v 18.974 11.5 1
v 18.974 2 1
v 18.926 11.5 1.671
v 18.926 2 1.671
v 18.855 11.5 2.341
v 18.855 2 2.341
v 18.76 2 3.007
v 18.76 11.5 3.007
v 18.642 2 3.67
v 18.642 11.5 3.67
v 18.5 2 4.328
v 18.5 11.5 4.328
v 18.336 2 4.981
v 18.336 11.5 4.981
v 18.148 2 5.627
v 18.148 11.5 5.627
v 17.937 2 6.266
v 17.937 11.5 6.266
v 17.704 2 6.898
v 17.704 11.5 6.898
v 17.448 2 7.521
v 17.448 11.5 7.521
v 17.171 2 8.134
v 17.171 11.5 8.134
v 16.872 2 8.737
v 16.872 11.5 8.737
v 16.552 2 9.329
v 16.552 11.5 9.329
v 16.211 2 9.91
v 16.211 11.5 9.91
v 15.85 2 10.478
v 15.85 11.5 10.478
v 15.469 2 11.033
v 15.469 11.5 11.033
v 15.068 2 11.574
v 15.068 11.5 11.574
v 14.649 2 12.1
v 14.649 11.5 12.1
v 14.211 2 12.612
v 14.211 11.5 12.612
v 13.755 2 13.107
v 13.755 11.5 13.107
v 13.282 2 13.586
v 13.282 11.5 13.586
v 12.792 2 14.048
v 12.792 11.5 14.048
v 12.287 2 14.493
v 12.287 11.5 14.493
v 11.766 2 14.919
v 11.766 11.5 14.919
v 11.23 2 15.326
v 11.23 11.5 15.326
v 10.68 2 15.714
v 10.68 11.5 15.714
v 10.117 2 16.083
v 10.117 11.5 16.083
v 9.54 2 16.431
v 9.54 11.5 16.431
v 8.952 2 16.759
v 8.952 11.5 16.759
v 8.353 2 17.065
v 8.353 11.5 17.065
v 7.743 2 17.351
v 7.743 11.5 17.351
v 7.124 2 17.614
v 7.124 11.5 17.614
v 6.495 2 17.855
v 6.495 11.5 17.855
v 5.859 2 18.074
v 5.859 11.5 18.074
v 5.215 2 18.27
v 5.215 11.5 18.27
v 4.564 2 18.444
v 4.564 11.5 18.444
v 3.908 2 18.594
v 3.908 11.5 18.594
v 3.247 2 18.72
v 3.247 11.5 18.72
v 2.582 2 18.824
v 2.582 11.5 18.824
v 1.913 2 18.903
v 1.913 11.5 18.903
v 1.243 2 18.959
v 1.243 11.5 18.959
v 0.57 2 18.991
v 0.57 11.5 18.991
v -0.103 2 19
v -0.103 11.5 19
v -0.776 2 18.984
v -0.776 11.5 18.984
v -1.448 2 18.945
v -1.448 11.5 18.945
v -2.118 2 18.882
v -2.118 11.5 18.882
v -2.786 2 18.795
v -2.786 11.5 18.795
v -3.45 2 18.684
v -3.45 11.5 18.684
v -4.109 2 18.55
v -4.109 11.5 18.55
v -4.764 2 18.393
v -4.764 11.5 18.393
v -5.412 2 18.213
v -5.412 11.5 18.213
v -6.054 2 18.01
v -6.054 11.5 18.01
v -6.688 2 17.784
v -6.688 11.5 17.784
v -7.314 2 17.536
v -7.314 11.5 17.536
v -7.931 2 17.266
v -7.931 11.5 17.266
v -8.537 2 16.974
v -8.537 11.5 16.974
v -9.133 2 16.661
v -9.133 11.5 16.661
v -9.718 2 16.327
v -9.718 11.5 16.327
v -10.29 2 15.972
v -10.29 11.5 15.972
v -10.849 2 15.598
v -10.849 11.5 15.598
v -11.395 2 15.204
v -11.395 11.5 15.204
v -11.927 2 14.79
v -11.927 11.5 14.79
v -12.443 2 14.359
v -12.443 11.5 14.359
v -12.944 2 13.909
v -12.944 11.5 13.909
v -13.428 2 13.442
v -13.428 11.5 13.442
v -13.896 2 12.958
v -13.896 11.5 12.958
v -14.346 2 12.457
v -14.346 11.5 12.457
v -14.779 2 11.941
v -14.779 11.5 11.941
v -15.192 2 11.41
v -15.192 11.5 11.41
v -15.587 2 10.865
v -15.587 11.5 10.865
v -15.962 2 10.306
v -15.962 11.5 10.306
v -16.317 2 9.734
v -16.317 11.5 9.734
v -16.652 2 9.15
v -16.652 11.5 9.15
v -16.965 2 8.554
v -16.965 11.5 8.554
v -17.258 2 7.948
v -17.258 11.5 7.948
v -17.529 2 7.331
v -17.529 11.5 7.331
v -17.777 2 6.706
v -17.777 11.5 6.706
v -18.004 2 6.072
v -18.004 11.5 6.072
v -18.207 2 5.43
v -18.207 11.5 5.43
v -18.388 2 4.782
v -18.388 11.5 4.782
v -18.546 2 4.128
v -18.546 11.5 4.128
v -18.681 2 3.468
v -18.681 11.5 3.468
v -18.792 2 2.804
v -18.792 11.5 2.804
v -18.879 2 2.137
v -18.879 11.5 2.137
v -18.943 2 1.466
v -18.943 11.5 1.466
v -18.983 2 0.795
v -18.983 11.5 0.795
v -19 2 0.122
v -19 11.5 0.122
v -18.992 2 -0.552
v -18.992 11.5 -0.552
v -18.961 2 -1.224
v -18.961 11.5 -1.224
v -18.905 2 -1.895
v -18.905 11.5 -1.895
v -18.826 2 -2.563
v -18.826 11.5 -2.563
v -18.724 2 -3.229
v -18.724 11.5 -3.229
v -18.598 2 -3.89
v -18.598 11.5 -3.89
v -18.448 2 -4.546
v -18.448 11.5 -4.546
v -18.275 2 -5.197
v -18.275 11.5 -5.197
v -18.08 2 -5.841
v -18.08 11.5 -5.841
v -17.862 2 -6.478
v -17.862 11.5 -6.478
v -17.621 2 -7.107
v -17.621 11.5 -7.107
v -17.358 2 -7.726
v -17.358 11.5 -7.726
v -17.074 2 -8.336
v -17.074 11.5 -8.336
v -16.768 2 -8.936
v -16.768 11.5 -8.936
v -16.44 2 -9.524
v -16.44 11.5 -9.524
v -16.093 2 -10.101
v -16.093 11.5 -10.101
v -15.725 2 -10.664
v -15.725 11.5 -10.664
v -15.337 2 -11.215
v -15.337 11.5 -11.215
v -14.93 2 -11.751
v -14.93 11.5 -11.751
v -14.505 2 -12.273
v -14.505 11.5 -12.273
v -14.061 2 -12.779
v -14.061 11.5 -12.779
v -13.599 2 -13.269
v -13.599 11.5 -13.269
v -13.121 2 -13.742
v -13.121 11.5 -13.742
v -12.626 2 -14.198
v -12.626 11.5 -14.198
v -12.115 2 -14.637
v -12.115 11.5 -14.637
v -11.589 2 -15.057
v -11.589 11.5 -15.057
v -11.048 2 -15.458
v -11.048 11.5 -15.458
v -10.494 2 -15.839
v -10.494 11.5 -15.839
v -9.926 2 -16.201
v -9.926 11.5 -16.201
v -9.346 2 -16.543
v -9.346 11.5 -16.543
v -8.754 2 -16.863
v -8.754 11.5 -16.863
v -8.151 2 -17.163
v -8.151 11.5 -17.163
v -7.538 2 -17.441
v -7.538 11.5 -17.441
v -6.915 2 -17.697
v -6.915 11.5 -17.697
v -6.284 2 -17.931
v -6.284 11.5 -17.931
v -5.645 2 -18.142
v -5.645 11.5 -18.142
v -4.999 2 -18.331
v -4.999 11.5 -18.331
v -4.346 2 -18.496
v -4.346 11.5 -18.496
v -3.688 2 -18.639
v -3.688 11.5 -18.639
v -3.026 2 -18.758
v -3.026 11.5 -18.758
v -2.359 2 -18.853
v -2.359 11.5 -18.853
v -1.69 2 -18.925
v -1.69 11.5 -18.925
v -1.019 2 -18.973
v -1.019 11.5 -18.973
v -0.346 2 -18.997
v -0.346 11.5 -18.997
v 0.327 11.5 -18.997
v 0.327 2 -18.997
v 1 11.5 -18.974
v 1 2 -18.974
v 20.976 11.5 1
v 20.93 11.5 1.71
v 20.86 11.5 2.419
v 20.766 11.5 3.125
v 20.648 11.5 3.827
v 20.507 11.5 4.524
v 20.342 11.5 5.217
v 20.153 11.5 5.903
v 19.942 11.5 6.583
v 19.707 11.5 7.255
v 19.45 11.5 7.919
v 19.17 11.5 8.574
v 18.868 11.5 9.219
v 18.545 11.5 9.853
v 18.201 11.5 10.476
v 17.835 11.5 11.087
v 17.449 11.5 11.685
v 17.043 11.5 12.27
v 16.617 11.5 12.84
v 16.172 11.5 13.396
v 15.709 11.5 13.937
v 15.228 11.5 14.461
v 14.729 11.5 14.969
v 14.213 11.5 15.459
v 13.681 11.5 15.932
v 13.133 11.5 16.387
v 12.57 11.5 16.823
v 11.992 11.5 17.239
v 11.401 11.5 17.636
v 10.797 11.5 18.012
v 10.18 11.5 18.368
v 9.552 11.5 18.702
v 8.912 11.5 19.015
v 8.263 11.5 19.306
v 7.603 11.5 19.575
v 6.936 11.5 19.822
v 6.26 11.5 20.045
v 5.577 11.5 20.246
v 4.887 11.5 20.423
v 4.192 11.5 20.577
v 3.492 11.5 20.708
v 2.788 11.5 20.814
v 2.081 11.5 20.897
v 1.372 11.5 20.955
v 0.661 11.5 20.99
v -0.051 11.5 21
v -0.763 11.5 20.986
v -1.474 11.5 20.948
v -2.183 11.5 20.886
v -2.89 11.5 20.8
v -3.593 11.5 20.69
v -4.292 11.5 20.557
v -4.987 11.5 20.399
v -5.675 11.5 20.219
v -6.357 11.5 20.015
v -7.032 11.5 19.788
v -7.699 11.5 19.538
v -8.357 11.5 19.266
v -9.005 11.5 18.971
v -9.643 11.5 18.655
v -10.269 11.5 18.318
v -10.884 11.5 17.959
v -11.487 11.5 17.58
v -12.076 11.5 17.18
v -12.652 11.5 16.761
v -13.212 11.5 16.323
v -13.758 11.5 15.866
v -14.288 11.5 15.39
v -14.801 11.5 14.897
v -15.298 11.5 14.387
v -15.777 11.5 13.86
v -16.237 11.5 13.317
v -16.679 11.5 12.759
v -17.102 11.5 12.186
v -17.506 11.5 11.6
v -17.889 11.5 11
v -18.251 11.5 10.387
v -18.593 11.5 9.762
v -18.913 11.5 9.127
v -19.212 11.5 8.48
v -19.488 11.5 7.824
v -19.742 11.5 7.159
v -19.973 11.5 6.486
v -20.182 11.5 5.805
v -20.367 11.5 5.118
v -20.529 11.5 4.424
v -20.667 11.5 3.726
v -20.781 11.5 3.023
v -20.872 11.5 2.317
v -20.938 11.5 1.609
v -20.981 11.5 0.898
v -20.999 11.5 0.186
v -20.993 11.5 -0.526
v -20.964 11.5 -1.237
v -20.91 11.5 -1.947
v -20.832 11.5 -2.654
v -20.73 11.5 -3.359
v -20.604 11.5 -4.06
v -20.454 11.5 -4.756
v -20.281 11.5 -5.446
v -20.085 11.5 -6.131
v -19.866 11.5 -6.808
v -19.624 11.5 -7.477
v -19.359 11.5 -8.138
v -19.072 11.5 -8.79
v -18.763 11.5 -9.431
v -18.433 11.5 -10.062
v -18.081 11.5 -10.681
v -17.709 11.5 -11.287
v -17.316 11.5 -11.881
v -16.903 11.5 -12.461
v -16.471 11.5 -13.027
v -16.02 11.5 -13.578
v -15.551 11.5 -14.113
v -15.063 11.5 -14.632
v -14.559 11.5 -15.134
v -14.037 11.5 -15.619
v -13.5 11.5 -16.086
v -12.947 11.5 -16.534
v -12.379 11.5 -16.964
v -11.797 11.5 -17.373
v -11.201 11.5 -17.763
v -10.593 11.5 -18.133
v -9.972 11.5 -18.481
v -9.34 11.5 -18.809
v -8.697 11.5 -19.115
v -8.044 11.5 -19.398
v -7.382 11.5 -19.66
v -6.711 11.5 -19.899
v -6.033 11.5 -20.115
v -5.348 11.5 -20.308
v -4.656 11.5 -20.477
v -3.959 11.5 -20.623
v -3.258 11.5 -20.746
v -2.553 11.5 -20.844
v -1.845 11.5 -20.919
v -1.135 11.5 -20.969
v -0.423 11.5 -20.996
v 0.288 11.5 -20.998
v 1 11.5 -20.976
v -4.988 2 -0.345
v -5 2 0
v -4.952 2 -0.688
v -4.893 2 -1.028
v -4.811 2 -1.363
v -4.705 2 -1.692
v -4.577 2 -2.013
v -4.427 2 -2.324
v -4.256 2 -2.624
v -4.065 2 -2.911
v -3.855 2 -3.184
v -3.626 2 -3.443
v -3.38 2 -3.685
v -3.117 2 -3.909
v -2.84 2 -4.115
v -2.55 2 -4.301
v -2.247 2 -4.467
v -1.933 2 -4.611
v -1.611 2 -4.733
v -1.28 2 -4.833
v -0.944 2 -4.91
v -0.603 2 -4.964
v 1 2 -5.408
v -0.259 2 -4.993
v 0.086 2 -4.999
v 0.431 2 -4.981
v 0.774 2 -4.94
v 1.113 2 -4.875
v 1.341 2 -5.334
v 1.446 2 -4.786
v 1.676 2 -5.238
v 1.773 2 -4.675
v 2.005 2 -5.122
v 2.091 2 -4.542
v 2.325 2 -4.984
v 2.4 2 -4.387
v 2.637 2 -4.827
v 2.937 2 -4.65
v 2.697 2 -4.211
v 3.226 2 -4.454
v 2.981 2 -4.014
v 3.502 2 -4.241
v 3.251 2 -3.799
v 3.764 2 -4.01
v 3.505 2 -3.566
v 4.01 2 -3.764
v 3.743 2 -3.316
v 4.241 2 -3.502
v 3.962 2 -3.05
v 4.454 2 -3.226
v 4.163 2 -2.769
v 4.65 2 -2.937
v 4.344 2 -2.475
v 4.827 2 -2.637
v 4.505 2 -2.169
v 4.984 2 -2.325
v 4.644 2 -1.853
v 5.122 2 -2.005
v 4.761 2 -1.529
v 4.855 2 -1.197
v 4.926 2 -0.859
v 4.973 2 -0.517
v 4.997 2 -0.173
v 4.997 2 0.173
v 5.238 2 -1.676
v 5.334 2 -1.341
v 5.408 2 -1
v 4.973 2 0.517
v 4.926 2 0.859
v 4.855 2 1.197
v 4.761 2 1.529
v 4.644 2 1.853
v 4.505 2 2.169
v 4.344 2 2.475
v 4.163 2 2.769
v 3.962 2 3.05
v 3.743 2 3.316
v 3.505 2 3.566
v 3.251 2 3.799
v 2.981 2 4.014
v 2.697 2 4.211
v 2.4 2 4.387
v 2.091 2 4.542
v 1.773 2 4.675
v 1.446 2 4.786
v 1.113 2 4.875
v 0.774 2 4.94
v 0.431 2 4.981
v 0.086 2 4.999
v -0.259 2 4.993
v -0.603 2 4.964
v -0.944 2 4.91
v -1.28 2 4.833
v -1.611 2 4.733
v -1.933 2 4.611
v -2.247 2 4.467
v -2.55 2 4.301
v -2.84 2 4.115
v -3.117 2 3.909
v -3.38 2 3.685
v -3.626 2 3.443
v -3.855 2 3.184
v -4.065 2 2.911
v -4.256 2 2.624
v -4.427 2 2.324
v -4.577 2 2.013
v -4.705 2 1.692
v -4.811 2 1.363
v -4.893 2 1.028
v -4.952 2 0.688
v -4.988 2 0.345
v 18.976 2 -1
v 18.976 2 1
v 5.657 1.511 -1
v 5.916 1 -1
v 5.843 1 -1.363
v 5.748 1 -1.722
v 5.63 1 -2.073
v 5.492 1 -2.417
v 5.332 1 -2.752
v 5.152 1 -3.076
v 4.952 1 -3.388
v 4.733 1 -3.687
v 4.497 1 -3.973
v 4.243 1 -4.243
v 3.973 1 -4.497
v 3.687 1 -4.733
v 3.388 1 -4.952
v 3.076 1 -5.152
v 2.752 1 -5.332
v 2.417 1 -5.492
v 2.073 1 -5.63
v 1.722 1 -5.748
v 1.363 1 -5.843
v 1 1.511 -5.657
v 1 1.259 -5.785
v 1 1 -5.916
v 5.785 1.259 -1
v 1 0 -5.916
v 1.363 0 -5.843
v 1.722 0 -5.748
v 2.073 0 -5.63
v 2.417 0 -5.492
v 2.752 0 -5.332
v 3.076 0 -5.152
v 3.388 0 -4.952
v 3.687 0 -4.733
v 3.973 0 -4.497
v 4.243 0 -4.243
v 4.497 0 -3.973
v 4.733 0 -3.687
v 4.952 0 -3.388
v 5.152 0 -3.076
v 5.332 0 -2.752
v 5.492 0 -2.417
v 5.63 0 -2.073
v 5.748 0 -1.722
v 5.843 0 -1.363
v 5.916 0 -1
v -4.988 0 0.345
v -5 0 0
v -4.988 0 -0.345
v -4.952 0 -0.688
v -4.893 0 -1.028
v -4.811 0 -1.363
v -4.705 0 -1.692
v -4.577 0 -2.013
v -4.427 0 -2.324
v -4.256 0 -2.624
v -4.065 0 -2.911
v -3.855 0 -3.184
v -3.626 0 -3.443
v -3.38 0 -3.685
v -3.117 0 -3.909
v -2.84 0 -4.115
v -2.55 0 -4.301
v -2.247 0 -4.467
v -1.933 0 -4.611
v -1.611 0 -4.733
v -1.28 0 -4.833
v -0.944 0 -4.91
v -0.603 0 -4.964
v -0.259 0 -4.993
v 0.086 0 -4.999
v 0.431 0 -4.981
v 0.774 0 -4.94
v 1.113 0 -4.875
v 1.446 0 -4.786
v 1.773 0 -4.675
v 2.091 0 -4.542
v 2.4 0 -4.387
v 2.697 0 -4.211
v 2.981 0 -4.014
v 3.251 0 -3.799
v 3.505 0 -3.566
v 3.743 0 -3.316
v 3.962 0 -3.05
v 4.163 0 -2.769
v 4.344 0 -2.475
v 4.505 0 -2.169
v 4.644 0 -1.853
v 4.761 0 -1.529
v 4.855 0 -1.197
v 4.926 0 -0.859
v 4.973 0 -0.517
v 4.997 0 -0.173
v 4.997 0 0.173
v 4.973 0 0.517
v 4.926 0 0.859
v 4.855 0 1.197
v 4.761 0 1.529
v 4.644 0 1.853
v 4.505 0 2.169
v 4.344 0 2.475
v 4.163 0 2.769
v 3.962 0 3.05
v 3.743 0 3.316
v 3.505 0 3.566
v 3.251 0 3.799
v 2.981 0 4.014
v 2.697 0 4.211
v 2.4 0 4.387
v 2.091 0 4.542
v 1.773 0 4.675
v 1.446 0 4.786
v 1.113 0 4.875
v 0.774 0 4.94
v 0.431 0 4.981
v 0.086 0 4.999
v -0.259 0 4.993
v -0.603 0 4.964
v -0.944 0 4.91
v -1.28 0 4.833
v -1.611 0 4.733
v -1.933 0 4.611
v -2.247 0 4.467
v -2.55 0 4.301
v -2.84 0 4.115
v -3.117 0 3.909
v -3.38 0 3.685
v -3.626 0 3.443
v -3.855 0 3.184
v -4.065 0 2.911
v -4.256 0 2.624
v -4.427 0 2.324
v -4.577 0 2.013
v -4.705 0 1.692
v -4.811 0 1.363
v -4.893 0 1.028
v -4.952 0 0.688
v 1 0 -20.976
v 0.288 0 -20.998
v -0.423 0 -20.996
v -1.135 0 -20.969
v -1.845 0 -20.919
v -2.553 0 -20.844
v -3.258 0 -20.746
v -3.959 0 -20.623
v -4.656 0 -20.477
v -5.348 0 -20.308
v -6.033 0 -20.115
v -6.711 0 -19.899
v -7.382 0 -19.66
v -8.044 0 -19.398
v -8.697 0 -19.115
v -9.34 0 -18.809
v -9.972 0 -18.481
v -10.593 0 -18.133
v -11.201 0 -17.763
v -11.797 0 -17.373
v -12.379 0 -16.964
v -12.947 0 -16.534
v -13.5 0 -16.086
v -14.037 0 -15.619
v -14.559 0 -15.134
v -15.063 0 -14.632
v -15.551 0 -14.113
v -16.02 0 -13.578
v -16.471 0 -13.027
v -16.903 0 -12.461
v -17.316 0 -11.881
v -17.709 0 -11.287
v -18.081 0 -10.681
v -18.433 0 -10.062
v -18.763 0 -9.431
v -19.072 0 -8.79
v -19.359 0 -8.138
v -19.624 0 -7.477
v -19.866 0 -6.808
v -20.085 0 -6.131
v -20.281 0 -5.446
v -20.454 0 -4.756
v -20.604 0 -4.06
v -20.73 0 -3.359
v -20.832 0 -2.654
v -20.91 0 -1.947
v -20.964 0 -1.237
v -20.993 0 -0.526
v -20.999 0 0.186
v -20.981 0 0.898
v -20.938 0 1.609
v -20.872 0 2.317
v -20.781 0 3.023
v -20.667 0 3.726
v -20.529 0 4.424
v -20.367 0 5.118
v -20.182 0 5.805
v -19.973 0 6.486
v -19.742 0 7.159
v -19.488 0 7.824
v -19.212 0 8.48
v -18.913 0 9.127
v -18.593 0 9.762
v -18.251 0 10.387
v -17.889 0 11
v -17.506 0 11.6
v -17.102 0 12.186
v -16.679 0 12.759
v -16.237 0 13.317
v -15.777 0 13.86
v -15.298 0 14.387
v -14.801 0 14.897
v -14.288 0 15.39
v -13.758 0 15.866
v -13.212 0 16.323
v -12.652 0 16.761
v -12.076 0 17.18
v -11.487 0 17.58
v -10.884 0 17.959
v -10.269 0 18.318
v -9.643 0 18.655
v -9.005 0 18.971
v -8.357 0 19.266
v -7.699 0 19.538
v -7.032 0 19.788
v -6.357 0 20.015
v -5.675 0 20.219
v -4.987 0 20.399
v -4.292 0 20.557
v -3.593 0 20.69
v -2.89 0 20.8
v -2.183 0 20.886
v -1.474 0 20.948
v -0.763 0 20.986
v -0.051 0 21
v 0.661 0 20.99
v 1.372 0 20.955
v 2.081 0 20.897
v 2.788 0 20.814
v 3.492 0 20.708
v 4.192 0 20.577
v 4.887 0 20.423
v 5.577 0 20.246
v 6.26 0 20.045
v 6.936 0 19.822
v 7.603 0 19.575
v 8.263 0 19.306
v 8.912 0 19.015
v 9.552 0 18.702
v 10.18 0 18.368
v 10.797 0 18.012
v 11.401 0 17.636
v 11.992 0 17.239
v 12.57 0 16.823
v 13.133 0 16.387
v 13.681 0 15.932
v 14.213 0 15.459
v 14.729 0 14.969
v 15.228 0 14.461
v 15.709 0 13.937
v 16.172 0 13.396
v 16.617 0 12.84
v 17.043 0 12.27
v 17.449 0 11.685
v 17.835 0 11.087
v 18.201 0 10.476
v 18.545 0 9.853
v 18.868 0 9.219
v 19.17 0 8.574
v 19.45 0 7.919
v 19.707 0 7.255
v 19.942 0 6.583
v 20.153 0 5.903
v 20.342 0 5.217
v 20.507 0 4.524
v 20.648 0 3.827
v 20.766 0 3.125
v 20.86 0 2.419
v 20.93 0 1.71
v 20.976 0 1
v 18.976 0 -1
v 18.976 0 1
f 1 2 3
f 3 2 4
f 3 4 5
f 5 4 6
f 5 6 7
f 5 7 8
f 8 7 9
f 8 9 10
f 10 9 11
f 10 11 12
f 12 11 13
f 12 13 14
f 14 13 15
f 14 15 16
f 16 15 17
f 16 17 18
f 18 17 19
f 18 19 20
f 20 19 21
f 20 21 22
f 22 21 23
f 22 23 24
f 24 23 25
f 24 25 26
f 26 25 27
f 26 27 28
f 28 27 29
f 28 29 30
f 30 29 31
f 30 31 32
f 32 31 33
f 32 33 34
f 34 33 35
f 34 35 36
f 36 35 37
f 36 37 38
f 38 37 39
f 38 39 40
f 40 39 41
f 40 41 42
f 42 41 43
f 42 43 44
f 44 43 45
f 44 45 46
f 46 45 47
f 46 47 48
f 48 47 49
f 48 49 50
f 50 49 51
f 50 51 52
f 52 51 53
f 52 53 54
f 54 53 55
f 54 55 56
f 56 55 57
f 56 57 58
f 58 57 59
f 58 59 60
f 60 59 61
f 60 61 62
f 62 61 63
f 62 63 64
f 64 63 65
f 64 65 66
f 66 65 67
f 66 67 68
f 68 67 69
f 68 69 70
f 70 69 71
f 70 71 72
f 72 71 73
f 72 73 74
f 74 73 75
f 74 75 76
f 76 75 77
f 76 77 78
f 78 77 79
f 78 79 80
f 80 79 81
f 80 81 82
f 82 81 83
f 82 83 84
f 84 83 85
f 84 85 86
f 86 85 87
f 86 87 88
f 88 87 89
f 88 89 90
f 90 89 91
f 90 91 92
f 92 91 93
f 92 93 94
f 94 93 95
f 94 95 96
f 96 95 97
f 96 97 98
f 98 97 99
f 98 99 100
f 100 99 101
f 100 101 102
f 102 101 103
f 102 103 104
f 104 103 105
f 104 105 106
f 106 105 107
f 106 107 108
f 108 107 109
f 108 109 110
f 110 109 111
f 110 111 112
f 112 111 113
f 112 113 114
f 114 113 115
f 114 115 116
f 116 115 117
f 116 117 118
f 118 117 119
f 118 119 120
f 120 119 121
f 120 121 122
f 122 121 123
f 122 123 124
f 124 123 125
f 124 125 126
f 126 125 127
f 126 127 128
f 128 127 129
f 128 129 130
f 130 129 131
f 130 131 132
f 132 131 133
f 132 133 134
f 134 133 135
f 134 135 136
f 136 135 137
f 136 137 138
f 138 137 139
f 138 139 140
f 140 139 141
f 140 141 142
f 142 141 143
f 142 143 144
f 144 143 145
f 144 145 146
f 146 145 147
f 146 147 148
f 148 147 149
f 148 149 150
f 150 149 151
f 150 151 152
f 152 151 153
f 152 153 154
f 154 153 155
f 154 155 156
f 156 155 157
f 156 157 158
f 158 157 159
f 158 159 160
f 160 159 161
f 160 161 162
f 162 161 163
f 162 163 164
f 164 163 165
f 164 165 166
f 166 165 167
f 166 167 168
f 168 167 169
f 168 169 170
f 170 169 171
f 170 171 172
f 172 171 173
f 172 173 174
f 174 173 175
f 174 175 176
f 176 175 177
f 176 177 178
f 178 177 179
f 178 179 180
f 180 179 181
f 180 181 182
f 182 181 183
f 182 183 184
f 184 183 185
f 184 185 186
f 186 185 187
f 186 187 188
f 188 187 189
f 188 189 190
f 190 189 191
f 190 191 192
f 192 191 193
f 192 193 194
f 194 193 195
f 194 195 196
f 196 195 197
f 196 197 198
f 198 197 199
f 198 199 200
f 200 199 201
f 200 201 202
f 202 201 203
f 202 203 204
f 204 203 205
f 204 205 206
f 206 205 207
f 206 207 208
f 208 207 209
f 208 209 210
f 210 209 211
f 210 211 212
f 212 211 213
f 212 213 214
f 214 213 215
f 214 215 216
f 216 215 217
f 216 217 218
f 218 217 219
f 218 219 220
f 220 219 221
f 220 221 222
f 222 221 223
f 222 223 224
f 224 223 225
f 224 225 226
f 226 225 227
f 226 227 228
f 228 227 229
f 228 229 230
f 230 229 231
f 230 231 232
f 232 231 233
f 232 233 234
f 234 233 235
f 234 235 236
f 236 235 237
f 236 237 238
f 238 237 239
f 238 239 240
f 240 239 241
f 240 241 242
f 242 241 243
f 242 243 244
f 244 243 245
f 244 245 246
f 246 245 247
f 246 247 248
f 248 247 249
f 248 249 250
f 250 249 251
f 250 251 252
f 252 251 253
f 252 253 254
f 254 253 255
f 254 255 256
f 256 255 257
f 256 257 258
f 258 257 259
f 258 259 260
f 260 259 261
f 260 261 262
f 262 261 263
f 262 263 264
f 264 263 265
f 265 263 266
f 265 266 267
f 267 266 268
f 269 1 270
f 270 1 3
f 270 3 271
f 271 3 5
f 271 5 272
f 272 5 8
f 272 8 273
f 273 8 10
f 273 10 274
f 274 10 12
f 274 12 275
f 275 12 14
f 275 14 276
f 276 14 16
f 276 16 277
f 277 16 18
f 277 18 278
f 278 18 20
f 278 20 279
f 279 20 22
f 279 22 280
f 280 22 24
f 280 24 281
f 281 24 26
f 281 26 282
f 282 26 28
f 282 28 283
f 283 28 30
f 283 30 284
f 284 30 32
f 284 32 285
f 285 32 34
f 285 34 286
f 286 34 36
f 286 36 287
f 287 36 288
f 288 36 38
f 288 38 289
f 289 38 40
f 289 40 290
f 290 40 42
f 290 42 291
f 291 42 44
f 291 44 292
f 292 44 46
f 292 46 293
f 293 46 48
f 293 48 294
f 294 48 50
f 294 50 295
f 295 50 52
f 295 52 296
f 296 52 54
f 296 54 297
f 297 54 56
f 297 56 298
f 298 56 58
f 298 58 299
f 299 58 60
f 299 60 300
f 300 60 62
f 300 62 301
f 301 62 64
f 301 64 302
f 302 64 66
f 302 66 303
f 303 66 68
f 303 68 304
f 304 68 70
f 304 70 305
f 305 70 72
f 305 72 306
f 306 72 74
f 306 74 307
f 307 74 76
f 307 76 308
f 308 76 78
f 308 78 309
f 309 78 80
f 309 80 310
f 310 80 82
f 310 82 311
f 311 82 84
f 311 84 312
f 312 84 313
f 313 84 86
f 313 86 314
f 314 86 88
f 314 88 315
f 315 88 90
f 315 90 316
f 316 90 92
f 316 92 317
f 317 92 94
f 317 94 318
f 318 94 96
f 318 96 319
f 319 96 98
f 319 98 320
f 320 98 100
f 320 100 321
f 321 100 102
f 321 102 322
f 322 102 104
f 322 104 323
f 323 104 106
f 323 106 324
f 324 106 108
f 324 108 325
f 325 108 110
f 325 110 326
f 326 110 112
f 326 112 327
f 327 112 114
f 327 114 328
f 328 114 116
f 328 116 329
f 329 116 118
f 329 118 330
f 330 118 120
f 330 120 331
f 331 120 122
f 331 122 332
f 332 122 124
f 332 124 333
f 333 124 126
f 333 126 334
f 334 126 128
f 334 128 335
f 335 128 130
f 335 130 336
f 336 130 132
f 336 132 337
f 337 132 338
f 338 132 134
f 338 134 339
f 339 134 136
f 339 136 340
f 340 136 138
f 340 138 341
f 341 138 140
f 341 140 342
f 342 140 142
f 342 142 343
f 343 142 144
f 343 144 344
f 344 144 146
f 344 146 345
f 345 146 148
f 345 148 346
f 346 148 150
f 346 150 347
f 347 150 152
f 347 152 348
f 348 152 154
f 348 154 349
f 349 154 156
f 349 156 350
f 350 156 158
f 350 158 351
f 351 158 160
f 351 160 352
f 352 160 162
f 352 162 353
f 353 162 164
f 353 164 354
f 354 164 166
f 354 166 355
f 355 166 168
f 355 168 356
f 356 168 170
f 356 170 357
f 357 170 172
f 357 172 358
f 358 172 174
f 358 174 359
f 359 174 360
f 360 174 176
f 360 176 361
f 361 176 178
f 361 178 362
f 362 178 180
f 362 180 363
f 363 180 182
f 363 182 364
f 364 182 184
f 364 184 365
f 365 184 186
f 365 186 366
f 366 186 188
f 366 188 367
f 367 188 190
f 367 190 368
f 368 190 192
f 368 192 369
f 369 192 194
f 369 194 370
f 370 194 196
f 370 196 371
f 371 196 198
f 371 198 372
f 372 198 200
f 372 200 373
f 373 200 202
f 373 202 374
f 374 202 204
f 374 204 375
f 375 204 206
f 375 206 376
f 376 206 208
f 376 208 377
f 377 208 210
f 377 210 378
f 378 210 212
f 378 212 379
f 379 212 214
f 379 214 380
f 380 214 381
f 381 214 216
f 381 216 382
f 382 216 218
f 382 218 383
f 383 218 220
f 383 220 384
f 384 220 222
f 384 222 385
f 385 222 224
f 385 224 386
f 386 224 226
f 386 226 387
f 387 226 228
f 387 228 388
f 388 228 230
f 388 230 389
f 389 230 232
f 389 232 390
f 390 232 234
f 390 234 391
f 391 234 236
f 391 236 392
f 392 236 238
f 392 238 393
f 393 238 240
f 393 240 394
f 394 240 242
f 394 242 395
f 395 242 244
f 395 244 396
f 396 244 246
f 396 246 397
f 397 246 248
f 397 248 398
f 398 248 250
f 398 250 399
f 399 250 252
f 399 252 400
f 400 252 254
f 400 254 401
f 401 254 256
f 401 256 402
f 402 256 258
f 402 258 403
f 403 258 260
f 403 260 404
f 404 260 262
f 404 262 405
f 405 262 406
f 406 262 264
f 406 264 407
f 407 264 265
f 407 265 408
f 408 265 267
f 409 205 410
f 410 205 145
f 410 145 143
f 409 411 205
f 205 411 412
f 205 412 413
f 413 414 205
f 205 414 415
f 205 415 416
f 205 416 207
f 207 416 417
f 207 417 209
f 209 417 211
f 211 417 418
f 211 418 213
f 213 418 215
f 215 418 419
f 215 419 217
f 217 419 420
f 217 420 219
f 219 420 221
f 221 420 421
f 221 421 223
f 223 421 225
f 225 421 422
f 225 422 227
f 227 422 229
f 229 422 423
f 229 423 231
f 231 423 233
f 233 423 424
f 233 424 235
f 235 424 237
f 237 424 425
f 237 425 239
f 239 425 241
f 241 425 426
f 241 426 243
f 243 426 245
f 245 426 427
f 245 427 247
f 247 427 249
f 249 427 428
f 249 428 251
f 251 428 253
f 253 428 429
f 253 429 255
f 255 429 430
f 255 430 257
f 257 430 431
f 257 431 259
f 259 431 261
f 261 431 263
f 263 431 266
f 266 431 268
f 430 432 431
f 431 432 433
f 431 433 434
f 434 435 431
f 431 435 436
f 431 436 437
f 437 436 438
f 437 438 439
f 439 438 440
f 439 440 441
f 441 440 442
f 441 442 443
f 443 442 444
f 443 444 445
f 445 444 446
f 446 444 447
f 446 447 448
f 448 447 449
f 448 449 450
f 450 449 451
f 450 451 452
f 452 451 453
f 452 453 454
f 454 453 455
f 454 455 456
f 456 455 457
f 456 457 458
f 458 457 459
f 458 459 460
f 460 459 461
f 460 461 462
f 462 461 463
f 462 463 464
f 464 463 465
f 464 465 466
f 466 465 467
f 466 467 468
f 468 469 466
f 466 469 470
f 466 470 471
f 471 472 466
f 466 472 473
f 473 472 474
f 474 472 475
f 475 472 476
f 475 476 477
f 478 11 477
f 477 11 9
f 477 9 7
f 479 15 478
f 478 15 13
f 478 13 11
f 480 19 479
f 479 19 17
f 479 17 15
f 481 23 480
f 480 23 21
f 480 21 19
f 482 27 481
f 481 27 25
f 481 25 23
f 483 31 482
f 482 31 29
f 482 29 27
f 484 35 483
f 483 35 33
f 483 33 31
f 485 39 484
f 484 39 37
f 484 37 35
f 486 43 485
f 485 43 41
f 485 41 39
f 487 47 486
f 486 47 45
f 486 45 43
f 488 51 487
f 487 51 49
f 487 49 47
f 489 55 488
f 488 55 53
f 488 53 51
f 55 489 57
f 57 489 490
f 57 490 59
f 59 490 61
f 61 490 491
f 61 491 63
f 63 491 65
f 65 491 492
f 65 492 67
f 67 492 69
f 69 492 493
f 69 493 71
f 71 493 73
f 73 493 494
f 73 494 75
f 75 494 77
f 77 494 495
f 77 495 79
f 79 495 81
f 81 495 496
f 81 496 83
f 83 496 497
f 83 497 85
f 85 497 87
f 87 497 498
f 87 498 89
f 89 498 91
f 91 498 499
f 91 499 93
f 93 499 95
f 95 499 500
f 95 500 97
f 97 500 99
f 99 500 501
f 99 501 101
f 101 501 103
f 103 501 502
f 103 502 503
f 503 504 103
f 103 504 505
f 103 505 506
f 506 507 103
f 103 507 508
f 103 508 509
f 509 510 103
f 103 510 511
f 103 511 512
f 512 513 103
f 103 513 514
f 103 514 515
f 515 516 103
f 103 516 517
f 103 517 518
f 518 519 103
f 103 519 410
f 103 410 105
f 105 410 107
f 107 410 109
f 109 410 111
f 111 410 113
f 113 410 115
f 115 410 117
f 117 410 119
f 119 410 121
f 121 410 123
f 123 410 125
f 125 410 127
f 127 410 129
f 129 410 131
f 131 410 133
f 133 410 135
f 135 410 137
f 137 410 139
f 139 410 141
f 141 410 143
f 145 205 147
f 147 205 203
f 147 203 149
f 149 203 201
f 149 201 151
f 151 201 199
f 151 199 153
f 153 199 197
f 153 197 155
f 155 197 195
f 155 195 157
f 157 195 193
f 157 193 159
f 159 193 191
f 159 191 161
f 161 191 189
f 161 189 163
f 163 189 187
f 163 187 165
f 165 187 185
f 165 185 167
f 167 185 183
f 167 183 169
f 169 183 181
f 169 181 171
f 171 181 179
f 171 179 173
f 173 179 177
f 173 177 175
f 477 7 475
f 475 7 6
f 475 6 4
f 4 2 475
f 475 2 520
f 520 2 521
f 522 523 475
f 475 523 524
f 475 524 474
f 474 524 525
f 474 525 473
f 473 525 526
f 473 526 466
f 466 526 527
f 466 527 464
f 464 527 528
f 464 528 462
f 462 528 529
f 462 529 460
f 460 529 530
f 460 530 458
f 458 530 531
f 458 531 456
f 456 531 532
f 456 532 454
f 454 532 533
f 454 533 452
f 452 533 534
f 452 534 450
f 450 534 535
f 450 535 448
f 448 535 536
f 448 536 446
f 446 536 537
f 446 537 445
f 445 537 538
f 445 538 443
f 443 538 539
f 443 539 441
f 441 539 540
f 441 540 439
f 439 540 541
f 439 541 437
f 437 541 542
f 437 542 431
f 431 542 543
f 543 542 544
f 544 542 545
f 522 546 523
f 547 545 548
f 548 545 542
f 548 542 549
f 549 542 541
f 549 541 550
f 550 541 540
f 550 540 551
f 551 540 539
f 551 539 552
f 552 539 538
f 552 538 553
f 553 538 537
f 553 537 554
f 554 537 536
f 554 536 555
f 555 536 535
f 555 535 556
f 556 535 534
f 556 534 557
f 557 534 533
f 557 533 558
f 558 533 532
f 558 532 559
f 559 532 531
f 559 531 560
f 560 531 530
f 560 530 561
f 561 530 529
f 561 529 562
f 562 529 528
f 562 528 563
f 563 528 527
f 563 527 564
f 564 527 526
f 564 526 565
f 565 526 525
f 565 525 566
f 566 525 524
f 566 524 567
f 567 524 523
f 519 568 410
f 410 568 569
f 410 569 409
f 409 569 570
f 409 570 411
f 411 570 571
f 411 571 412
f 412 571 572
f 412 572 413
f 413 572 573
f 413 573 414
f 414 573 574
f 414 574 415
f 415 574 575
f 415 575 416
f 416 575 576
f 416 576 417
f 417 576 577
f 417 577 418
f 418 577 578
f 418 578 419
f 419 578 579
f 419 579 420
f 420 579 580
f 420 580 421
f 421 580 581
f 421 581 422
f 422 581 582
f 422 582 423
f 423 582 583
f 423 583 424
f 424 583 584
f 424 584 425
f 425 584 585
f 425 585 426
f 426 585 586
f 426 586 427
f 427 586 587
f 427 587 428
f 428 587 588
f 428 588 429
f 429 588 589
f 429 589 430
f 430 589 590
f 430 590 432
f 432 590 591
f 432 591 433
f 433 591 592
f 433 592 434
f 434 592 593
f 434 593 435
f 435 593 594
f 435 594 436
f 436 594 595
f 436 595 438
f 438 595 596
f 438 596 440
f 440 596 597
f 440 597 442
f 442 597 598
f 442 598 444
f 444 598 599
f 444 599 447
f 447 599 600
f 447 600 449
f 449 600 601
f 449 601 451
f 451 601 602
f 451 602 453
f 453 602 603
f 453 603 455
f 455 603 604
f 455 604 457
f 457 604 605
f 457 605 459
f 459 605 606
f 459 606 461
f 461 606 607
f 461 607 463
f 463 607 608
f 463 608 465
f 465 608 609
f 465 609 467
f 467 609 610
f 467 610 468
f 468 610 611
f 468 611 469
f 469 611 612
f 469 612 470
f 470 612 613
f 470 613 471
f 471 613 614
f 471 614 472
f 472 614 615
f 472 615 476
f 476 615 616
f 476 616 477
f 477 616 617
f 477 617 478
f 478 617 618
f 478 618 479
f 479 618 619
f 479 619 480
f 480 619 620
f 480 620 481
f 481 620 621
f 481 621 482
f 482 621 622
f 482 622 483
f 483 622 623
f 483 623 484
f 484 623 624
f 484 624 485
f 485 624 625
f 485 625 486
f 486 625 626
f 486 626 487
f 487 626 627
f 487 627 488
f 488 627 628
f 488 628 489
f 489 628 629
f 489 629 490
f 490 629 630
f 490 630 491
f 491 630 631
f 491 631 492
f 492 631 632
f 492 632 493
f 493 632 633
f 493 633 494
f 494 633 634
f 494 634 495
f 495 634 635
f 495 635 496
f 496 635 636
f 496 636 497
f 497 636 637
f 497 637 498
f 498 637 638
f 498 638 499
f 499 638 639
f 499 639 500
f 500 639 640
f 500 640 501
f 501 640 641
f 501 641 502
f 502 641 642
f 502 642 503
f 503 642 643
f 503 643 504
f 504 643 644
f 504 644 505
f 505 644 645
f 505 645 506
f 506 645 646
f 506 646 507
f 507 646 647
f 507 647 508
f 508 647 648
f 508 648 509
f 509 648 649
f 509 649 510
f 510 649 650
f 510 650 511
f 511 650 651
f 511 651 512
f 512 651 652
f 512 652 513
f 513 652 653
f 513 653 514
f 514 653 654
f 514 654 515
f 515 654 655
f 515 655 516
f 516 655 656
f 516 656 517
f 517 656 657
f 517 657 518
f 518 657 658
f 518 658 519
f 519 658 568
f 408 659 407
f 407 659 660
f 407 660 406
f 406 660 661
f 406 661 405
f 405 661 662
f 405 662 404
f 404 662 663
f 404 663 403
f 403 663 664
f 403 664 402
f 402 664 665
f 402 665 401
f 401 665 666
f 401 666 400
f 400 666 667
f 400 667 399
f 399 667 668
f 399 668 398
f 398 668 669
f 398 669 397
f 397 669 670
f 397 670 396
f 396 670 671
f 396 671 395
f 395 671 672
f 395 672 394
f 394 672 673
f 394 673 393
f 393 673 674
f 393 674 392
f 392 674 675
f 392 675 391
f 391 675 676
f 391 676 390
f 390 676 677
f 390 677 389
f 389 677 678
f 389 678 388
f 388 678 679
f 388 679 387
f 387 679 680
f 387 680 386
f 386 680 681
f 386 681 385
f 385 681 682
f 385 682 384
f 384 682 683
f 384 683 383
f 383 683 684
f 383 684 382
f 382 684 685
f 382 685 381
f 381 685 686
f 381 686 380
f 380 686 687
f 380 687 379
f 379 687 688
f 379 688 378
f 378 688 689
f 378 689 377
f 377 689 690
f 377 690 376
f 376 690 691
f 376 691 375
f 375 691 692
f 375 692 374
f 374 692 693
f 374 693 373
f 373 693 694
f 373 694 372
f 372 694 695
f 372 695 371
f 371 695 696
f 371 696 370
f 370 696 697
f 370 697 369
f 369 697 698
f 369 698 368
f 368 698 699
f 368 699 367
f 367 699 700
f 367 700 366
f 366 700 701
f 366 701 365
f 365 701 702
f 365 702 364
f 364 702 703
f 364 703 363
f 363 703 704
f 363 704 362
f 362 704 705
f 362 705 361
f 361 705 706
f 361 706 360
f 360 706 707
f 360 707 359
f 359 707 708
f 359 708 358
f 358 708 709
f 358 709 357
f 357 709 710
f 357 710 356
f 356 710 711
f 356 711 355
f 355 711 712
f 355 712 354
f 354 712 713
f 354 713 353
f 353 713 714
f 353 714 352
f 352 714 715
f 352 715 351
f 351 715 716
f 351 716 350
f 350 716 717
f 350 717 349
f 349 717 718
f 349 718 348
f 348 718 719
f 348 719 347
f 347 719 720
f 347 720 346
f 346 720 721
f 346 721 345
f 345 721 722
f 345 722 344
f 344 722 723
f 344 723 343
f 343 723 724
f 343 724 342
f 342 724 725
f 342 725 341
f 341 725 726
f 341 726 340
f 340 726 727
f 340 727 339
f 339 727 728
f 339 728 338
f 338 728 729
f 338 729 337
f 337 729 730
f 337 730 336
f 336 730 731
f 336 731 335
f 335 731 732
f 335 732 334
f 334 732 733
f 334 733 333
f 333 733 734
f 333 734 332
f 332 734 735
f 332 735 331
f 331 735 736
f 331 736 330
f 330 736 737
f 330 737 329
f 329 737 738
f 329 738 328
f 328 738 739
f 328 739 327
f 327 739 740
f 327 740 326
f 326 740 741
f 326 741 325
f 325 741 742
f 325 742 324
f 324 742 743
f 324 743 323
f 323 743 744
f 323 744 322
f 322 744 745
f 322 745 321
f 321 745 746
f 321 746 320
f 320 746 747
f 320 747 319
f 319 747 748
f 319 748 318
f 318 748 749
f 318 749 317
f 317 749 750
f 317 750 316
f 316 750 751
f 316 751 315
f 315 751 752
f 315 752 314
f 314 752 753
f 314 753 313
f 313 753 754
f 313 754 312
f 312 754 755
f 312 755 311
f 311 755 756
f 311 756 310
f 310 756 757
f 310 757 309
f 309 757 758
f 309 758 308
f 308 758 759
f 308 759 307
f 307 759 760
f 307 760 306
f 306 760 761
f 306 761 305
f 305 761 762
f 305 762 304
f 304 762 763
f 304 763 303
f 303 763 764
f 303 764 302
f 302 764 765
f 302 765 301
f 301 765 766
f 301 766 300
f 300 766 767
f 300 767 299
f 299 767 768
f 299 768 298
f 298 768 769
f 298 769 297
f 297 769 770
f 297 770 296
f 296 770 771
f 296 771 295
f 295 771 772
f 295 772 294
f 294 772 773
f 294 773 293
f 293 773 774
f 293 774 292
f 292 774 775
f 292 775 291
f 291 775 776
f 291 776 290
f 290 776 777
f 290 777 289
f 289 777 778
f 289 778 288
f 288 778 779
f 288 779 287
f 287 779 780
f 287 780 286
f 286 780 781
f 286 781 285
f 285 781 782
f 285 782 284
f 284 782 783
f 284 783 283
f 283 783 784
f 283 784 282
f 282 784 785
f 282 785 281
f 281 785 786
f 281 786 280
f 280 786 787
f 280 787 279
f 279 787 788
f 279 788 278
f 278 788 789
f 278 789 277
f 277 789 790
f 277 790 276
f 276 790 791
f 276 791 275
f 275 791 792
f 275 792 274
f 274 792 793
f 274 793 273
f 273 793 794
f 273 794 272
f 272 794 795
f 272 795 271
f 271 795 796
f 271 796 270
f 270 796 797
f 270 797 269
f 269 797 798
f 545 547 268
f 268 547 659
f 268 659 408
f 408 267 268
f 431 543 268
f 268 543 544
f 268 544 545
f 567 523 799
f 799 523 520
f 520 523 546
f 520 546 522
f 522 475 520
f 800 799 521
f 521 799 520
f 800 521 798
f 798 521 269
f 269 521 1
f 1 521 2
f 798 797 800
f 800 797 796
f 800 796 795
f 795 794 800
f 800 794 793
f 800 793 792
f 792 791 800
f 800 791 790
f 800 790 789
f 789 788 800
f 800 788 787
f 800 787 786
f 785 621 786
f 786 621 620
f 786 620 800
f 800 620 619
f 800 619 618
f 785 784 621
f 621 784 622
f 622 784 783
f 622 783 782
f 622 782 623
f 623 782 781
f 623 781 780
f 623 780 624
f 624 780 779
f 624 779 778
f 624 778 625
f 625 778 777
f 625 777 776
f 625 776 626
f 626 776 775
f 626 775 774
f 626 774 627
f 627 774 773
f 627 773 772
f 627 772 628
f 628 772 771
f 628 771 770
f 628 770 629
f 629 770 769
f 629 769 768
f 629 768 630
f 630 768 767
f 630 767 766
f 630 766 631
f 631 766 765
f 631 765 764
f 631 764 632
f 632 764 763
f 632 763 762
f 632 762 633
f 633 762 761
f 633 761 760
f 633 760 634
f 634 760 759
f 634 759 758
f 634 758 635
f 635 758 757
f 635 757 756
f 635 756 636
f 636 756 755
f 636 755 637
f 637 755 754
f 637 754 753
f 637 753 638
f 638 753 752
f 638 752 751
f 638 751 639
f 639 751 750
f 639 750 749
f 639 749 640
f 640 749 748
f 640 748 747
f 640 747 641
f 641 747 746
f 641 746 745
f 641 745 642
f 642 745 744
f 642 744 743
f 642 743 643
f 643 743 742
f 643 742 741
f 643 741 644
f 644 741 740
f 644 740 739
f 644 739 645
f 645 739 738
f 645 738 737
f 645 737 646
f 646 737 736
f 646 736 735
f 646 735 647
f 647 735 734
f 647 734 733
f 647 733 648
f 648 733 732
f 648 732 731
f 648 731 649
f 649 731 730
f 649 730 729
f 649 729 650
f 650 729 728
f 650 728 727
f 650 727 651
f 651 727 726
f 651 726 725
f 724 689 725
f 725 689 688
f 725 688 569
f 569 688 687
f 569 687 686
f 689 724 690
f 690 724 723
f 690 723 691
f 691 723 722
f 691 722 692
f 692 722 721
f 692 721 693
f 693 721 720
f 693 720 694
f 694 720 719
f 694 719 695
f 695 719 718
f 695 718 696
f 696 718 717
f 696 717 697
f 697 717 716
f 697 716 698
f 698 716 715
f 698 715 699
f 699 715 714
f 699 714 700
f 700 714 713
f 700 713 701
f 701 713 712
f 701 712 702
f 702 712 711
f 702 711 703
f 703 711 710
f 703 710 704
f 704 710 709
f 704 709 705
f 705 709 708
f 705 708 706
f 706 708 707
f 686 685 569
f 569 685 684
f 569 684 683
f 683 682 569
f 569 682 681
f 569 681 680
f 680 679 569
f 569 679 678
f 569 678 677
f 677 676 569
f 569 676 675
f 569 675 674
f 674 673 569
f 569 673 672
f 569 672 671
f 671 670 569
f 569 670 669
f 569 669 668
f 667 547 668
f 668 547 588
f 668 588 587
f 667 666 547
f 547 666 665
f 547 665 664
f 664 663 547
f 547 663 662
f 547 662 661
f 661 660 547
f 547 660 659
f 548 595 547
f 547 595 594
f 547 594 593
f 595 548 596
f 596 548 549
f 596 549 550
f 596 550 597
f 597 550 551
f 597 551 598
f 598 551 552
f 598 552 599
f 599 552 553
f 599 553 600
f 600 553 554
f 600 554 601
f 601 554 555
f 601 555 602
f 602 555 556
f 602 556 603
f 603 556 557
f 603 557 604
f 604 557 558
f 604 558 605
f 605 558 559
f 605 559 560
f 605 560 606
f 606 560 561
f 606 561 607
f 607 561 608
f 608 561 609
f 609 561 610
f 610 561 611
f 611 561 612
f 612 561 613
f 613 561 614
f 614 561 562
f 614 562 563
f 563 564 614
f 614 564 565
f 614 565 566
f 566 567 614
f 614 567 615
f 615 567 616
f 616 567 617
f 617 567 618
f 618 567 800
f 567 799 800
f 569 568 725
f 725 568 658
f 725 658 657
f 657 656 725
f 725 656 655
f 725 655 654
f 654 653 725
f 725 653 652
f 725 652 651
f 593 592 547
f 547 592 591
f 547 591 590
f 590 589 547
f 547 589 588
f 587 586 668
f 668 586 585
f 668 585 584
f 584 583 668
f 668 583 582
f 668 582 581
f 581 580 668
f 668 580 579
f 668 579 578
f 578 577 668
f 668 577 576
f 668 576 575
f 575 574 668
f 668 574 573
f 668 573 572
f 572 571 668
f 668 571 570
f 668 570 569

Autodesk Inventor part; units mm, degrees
ref_plane "YZ Plane" through (0, 0, 0) normal (1, 0, 0) x (0, 1, 0)
ref_plane "XZ Plane" through (0, 0, 0) normal (0, 1, 0) x (-1, 0, 0)
ref_plane "XY Plane" through (0, 0, 0) normal (0, 0, 1) x (1, 0, 0)
sketch "Sketch9" plane through (0, 0, 0) normal (0, 1, 0) x (-1, 0, 0)
  arc A0 (-1, -20.9762) -> (-20.9762, 1) centre (0, 0) ccw
  line L0 (21, 0) -> (-21, 0) construction
  line L1 (0, 21) -> (0, -21) construction
  line L2 (21, -1) -> (20.9762, -1)
  line L3 (21, 1) -> (20.9762, 1)
  line L4 (-20.9762, 1) -> (-21, 1)
  line L5 (1, 21) -> (1, 20.9762)
  line L6 (1, -20.9762) -> (1, -21)
  line L7 (-1, 21) -> (-1, 20.9762)
  line L8 (-1, -5.9161) -> (-1, -21)
  line L9 (-5.9161, -1) -> (-18.9762, -1)
  circle A1 centre (0, 0) radius 5
  arc A2 (-5.9161, -1) -> (-1, -5.9161) centre (0, 0) ccw
  line L10 (-20.9762, -1) -> (-18.9762, -1)
  line L11 (-19.9762, -1) -> (-19.9762, 1) construction
  line L12 (-19.9762, 1) -> (-20.9762, 1)
  line L13 (-18.9762, 1) -> (-18.9762, -1)
  line L14 (-18.9762, 1) -> (-19.9762, 1)
  point P0 (-4.899, -1)
  point P1 (-1, -4.899)
  point P2 (-20.9762, -1)
  dimension "d30" = 42
  dimension "d35" = 10
  dimension "d48" = 2
  dimension "d49" = 2
extrude "Extrusion5" add sketch "Sketch9" along normal blind 2
chamfer "Chamfer1" distance 0.5 distance2 1 1 edges at (4.2426, 2, -4.2426) measured on face at (14.1627, 2, 6.4351)
sketch "Sketch10" plane through (0, 2, 0) normal (0, 1, 0) x (1, 0, 0)
  arc A0 (1, 20.9762) -> (20.9762, -1) centre (0, 0) ccw
  arc A1 (1, 18.9737) -> (18.9737, -1) centre (0, 0) ccw
  line L0 (20.058, 1) -> (18.9737, 1)
  line L1 (18.9762, 1) -> (5.4083, 1) projected
  line L2 (1, 5.4083) -> (1, 20.9762) projected
  line L3 (1, 18.9737) -> (1, 20.9762)
  line L4 (20.058, 1) -> (20.058, -1) construction
  line L5 (20.058, -1) -> (20.9762, -1)
  line L6 (17.9722, -1) -> (20.9762, -1)
  point P0 (20.9762, 1)
  point P1 (22.9762, 1)
  point P2 (1, 17.9722)
  dimension "d42" = 2
  dimension "d47" = 2
extrude "Extrusion6" add sketch "Sketch10" along normal blind 9.5
properties part number "base layer 1"
